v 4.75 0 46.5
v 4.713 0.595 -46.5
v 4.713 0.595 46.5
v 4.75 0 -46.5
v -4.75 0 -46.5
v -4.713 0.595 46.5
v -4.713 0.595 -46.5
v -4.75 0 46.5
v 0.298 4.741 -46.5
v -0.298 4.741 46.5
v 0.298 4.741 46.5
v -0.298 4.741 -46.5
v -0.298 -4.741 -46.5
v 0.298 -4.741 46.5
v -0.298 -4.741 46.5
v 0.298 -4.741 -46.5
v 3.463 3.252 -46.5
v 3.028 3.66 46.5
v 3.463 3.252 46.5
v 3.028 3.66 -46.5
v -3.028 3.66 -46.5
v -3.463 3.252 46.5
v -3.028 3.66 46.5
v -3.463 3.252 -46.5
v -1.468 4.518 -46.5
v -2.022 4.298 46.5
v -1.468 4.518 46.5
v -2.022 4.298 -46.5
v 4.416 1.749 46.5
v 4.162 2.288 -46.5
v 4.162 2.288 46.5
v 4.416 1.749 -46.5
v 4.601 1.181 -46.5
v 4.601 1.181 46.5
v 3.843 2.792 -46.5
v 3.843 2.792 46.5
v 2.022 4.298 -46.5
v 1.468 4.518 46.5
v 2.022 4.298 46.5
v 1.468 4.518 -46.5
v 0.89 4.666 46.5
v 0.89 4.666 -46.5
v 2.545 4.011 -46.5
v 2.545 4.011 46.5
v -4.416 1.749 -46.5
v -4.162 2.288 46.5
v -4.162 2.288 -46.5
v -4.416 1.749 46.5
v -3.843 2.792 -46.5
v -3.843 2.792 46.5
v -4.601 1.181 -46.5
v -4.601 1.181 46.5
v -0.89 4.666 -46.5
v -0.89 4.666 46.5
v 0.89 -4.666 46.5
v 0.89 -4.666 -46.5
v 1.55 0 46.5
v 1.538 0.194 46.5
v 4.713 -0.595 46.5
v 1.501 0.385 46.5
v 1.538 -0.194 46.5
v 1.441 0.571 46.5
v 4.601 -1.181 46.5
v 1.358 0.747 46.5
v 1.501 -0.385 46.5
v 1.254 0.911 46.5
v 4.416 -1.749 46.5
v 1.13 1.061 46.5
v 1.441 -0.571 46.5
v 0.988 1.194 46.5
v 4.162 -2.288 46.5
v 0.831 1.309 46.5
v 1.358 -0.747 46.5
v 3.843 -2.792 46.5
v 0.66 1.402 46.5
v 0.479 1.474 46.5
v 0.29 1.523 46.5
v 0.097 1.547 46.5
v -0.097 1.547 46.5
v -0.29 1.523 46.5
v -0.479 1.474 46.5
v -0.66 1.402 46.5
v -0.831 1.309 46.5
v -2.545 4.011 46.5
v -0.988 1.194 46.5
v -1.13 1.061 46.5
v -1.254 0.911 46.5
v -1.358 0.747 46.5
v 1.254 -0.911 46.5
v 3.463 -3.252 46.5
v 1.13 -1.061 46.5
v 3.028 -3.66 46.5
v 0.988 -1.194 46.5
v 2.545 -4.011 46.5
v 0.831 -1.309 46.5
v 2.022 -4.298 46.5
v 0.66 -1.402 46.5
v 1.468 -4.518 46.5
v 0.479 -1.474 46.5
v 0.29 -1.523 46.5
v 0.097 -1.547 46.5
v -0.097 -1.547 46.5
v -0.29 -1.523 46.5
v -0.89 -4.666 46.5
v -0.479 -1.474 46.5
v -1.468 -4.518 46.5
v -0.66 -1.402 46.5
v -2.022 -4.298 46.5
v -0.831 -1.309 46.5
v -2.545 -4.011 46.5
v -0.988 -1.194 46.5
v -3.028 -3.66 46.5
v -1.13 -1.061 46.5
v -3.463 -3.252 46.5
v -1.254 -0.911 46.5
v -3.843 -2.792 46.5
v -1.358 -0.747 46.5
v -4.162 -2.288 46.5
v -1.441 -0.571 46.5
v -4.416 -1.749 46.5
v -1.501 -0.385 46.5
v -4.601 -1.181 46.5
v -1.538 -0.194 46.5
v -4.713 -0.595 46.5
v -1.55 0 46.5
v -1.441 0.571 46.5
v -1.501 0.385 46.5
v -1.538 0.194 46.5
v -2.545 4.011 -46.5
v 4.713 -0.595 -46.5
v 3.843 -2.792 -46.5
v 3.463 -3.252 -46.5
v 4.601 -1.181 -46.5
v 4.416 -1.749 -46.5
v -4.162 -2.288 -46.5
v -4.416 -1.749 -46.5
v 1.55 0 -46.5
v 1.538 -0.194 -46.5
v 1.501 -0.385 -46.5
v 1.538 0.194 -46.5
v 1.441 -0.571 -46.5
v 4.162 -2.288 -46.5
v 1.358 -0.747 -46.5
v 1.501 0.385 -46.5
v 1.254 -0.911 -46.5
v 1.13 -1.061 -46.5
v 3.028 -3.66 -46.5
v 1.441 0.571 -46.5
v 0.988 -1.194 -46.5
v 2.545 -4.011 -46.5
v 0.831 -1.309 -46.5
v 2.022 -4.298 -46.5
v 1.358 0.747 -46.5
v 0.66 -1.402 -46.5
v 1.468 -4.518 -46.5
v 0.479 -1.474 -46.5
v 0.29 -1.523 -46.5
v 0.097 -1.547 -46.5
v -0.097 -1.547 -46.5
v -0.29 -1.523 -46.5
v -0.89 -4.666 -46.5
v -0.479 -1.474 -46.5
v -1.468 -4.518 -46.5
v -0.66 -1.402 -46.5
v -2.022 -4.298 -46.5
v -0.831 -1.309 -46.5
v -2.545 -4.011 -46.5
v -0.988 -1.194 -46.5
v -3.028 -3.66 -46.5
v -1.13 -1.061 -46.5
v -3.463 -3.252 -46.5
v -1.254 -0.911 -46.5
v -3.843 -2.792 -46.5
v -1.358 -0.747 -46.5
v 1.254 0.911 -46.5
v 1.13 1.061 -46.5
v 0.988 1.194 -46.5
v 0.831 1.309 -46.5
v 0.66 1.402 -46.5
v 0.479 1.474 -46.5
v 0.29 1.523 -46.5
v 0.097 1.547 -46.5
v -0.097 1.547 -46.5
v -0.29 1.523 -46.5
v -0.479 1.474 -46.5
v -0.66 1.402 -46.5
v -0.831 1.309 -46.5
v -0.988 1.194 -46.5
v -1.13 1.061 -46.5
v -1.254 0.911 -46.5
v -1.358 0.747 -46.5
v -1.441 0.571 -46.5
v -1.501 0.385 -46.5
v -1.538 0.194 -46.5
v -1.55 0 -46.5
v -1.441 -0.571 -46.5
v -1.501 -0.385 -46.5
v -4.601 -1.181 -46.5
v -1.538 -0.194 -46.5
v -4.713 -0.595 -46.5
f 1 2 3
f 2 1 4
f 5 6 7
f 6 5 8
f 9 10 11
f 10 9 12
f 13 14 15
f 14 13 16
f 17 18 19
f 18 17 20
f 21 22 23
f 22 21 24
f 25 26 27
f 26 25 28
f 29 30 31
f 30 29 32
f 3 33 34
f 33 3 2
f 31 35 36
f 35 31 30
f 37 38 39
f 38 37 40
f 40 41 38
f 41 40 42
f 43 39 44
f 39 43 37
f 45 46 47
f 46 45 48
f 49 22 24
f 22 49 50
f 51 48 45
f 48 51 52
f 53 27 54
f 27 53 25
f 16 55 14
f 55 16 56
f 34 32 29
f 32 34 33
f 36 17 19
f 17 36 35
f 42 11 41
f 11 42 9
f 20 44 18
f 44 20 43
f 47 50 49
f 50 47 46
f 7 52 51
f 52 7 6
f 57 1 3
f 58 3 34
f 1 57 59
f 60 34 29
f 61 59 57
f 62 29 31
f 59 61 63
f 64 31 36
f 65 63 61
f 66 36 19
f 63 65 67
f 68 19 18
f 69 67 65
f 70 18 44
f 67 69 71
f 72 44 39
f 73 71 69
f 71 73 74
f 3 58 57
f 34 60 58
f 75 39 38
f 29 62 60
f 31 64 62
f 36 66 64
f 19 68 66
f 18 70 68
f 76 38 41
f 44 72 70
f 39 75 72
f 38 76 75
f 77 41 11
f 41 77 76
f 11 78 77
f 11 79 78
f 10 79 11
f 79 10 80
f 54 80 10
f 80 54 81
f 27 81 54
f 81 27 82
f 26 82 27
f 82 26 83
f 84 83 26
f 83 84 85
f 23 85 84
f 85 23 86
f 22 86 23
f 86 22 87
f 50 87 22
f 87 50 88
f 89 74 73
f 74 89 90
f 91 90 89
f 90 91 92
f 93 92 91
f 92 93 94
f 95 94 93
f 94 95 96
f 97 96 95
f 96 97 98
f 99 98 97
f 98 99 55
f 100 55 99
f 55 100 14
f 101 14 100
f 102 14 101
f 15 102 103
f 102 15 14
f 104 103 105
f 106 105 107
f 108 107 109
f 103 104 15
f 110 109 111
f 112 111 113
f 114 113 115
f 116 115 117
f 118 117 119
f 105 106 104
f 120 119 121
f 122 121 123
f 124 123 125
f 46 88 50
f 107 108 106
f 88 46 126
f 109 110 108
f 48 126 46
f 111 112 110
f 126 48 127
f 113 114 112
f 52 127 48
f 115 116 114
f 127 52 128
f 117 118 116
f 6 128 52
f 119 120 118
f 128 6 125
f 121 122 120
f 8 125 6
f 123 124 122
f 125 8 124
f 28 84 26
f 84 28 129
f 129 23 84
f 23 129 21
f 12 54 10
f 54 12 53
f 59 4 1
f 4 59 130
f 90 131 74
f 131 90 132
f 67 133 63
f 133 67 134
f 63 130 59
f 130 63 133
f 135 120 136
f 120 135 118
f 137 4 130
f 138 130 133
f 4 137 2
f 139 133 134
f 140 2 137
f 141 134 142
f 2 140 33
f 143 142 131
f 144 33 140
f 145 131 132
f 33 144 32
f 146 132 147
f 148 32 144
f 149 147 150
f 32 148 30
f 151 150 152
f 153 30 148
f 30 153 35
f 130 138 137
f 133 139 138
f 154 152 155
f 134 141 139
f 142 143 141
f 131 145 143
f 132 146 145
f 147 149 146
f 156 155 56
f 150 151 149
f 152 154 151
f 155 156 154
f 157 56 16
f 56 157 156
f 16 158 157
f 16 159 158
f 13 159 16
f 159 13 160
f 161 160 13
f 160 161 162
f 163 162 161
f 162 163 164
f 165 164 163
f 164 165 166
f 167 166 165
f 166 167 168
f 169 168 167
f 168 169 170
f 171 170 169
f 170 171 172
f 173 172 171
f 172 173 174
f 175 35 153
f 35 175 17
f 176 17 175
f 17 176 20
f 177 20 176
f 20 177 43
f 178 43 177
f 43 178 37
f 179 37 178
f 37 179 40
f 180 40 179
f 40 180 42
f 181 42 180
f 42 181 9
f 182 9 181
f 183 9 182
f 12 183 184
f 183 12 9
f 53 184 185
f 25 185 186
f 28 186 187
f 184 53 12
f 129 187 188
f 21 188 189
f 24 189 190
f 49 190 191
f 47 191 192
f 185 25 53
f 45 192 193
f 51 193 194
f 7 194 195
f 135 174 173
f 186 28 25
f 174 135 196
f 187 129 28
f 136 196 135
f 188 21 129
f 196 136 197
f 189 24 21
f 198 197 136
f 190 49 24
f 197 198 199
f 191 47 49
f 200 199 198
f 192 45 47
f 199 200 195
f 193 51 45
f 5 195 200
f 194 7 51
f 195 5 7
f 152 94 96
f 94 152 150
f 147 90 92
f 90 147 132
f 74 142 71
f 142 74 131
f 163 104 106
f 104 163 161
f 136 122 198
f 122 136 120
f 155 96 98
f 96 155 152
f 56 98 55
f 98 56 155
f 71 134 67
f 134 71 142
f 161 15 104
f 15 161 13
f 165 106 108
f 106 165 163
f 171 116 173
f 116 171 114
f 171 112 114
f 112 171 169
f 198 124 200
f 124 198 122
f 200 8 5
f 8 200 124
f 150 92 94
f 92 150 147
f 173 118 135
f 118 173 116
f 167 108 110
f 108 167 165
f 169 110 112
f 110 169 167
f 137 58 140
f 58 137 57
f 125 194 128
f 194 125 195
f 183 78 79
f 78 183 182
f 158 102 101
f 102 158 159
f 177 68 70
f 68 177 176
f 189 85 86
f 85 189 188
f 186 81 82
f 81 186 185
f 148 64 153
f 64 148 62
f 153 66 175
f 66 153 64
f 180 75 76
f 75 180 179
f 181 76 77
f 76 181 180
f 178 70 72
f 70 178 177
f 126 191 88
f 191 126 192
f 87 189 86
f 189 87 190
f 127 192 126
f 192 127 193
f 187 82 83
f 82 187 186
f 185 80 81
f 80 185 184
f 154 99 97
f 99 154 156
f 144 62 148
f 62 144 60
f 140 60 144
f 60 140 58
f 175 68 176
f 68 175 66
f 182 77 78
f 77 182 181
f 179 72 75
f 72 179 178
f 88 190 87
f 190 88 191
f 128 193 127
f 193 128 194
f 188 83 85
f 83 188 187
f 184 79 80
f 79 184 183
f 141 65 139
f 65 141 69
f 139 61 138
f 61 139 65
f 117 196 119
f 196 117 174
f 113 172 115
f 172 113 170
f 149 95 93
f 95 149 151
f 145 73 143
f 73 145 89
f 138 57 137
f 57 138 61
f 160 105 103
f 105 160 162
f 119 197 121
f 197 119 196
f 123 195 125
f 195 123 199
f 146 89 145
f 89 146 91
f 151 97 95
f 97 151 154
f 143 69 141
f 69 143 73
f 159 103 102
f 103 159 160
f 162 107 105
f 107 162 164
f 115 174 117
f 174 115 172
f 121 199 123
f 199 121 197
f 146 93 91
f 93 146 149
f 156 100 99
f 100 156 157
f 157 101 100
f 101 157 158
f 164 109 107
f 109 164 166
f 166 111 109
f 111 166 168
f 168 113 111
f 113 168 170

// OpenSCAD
$fn = 50;


difference() {
	union() {
		translate(v = [0, 0, -46.5000000000]) {
			cylinder(h = 93, r = 4.7500000000);
		}
	}
	union() {
		translate(v = [0, 0, -100.0000000000]) {
			cylinder(h = 200, r = 1.5500000000);
		}
	}
}
